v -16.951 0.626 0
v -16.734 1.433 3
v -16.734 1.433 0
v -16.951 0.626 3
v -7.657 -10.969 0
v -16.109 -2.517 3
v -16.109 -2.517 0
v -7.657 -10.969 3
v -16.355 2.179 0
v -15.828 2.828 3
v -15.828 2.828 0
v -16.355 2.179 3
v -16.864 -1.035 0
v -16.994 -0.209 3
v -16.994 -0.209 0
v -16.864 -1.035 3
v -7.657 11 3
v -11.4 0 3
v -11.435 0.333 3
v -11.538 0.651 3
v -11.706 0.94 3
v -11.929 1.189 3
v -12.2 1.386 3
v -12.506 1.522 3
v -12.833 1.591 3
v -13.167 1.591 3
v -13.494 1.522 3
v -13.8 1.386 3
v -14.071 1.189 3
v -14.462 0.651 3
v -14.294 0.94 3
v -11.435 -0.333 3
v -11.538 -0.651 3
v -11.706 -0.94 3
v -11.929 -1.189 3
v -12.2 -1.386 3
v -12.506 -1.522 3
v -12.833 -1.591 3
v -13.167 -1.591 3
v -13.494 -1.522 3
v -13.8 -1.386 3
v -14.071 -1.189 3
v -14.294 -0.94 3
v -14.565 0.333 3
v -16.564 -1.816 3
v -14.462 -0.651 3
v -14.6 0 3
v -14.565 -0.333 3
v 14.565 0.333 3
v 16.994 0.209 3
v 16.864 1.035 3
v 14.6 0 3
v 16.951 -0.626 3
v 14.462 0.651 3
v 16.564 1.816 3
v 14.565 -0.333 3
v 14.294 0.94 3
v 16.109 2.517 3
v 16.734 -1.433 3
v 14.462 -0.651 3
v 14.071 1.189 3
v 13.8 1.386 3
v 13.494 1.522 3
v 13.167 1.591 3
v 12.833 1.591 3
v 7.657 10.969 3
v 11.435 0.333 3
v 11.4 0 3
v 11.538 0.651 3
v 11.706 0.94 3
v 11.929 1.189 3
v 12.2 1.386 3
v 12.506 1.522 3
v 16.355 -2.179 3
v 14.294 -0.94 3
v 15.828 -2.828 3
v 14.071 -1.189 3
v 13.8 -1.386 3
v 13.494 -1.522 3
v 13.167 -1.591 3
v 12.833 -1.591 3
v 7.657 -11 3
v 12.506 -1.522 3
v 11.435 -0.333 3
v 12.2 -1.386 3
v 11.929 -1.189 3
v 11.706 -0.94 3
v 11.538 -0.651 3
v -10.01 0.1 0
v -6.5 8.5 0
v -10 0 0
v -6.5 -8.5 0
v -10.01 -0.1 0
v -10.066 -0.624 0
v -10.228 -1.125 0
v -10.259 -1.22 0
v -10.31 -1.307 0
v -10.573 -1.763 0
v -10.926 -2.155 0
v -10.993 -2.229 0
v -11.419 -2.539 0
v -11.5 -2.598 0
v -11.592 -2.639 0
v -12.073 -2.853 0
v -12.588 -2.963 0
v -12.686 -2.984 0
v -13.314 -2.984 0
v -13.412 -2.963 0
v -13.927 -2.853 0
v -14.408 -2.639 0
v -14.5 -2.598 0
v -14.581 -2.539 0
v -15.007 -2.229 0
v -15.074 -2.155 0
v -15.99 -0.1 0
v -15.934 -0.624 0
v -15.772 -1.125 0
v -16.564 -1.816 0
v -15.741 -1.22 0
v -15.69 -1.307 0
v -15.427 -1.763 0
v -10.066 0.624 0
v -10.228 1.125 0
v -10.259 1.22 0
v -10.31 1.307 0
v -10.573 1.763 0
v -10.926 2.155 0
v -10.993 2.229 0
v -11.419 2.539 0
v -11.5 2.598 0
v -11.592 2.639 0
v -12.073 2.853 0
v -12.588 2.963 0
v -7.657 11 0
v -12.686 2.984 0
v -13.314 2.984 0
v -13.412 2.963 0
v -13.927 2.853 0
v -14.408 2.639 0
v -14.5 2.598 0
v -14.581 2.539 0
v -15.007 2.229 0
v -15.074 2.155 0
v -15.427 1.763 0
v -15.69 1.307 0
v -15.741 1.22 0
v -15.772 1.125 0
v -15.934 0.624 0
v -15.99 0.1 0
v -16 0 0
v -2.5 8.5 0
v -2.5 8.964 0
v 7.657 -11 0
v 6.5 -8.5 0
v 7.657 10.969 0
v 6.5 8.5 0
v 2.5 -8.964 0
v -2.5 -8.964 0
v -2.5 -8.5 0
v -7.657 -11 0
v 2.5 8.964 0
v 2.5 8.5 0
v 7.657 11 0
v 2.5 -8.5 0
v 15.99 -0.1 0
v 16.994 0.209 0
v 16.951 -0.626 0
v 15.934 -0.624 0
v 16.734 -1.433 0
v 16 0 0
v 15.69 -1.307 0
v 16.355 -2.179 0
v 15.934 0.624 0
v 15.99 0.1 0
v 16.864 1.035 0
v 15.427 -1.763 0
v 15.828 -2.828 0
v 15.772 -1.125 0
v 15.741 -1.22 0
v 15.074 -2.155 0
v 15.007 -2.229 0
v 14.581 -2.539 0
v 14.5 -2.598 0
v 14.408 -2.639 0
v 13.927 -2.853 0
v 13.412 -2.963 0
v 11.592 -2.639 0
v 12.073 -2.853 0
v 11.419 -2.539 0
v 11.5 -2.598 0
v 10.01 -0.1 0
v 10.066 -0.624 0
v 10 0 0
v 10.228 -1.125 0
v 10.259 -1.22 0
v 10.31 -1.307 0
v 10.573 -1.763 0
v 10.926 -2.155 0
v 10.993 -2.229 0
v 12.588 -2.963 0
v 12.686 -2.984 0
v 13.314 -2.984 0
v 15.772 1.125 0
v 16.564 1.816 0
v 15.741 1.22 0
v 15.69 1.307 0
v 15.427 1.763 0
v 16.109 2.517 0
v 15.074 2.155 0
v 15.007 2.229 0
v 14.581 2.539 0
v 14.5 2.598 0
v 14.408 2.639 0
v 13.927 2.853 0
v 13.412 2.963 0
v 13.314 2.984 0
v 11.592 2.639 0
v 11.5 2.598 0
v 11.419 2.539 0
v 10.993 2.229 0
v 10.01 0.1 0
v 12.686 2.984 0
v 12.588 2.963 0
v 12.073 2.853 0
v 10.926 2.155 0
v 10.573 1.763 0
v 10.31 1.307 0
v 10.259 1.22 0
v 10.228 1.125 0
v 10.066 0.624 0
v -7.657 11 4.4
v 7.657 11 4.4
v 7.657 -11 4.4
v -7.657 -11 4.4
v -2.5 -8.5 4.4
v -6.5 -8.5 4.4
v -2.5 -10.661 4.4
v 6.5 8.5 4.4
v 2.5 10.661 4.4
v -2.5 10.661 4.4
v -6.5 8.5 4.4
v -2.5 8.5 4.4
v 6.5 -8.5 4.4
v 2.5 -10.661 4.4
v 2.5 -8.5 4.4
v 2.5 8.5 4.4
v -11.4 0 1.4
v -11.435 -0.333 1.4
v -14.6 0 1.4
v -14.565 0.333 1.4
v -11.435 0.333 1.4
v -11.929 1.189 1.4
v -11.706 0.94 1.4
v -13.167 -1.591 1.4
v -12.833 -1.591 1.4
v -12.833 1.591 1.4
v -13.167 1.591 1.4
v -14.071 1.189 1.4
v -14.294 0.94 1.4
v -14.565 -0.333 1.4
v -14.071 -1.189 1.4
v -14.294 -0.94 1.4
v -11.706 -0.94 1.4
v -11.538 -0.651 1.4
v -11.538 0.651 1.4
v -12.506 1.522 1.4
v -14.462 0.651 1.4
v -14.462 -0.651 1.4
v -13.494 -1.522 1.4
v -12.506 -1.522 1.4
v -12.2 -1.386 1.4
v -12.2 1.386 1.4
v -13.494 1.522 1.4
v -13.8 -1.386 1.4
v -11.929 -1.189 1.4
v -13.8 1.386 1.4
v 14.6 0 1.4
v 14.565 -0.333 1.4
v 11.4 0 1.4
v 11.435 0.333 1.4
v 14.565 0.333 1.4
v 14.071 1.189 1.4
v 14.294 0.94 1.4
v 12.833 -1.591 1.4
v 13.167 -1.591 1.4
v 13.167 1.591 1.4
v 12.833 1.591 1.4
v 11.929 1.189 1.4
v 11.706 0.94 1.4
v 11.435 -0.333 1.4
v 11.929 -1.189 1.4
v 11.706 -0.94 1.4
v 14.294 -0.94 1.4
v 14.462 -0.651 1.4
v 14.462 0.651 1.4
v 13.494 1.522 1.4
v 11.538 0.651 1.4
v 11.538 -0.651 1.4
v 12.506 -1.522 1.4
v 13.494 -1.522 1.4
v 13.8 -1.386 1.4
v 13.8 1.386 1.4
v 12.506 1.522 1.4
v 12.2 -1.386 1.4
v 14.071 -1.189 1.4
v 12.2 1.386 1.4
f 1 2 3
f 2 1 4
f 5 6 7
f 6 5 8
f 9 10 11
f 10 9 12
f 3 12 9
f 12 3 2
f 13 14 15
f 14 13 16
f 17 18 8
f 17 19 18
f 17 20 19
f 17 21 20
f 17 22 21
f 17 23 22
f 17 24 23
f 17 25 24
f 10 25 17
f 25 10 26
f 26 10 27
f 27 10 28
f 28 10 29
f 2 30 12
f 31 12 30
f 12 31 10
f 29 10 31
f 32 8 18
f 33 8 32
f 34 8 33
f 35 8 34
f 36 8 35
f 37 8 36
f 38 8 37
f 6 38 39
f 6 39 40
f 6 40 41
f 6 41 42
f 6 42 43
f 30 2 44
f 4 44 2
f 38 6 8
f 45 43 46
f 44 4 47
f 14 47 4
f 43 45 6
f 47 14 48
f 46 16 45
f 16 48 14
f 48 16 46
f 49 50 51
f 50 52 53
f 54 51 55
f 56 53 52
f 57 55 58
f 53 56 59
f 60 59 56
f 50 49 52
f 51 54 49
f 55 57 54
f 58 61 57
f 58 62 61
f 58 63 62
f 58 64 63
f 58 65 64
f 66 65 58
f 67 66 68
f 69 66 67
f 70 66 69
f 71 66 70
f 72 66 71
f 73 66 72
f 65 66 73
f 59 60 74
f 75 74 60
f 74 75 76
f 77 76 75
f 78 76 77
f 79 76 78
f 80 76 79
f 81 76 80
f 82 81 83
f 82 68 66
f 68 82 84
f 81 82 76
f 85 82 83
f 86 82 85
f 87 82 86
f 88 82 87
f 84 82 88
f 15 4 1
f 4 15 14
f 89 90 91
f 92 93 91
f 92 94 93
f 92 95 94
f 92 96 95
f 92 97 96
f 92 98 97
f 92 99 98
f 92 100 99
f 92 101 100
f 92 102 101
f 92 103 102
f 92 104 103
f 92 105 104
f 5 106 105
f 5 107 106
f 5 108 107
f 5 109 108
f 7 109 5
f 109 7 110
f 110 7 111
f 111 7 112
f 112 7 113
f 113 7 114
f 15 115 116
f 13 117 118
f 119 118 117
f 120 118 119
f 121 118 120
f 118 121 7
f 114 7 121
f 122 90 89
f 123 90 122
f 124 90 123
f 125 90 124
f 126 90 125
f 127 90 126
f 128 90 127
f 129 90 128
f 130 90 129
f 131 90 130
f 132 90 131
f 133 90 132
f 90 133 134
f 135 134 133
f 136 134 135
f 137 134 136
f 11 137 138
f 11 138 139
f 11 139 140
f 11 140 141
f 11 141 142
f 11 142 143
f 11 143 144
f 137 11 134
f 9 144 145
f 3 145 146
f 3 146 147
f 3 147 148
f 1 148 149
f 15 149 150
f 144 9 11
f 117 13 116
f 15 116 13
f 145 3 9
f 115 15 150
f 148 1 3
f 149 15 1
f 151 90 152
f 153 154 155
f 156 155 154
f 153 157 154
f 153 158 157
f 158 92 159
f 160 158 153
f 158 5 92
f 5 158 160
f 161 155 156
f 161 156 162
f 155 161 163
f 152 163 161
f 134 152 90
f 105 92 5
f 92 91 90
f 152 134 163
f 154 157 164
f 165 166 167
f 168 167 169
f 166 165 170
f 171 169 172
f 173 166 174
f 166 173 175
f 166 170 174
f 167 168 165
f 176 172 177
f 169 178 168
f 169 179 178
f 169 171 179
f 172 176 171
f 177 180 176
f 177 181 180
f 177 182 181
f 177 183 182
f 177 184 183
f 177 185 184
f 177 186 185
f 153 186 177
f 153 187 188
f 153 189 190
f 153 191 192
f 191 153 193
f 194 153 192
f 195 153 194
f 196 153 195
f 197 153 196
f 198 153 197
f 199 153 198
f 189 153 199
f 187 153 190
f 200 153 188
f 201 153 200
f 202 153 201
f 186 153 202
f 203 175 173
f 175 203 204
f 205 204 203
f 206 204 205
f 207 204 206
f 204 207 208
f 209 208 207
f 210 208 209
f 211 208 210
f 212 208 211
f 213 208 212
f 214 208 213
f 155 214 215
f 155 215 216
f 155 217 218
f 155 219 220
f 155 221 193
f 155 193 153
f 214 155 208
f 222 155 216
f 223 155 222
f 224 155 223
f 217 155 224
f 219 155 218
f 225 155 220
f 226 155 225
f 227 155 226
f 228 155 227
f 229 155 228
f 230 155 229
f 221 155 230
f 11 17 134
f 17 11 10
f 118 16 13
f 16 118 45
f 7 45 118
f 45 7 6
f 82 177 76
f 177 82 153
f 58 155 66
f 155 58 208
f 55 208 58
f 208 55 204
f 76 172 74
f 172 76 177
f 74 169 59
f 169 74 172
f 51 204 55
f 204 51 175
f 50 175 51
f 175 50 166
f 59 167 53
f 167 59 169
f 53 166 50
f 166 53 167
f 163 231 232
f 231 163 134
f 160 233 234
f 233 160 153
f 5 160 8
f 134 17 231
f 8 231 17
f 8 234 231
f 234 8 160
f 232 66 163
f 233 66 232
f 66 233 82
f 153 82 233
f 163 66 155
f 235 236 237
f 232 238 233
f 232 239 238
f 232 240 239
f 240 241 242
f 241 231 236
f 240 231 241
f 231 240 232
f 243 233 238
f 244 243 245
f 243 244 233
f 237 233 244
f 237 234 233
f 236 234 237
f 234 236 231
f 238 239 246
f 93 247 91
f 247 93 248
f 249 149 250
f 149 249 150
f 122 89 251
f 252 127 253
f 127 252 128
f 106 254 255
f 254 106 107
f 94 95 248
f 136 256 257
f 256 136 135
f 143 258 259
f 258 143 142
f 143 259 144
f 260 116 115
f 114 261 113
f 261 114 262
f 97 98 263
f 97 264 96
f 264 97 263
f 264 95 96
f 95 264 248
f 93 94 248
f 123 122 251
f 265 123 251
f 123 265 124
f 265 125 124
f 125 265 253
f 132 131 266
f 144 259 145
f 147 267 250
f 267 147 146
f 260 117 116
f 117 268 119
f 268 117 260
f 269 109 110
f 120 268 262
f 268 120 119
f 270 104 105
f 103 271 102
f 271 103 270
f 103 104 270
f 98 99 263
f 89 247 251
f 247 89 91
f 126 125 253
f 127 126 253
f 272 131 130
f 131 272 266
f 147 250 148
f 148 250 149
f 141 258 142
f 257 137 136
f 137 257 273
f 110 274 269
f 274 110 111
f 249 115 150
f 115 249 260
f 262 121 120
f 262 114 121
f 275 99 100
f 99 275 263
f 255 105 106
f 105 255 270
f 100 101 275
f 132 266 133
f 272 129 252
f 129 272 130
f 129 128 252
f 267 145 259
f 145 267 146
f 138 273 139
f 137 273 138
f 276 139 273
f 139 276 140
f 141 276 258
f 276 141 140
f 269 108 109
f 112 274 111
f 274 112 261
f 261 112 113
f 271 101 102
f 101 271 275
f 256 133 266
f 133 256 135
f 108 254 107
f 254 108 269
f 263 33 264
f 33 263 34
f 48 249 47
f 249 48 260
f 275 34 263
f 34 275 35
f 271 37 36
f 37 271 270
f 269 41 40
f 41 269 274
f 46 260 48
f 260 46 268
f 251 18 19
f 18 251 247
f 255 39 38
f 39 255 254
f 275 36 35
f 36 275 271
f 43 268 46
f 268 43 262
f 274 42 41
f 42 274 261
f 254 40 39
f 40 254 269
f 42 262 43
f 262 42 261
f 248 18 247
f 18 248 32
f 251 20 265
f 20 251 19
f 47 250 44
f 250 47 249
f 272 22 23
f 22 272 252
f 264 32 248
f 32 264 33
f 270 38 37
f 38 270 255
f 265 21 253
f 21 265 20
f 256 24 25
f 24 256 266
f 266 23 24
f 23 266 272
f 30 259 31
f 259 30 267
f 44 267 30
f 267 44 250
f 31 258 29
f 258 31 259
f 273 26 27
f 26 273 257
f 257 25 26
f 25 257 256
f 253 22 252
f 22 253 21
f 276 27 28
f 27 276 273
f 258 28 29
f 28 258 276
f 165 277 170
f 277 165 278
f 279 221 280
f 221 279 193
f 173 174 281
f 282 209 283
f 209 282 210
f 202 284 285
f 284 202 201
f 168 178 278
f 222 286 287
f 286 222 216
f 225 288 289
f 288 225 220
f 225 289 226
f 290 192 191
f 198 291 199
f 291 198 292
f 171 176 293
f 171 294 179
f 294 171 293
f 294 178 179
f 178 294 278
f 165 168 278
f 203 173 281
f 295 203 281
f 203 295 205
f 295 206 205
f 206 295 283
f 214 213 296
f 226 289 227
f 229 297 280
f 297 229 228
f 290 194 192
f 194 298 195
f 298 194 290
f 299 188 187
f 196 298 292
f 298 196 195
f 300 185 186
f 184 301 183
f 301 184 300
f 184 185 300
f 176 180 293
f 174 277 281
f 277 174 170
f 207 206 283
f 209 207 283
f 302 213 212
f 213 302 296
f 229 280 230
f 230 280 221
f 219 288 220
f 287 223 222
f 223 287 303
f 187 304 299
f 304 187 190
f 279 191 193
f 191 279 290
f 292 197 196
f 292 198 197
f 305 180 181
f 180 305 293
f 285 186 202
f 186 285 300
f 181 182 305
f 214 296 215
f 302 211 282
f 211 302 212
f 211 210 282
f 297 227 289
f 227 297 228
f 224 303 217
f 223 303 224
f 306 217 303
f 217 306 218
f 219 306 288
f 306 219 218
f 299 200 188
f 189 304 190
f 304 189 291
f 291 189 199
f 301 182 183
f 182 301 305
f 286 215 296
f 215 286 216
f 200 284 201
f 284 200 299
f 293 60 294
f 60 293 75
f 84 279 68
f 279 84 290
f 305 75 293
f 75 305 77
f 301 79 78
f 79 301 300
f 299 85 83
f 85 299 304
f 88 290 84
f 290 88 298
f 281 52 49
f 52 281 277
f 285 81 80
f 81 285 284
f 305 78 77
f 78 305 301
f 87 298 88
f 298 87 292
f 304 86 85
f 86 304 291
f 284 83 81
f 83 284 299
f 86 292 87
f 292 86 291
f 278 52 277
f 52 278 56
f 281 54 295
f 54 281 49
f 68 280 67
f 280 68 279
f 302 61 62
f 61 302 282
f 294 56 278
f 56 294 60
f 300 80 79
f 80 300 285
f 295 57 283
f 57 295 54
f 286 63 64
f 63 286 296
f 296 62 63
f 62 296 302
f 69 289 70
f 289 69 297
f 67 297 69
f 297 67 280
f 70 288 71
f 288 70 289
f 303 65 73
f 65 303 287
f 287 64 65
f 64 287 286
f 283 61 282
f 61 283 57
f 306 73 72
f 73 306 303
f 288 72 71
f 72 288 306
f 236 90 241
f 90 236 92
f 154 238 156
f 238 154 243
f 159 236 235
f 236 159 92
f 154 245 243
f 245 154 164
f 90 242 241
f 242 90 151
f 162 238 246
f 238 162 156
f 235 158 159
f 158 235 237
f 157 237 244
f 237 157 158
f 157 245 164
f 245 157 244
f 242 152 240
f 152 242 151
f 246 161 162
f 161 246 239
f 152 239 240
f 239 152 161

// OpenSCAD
// file: lib/halfcube.scad
// библиотечная функция - прямоугольная призма
/*
 * a - вектор [x,y,z] - куб, в который вписана призма
 * orient - строка "x"/"y"/"z" - ориентация треугольной грани призмы
 * center - логическое true/false - позиционирование относительно центра или с угла
 *
 * Автор - Andrew Answer (Андрей Нуждов): http://answe.ru
 * Сделано для проекта SibRap: http://reprap.org/wiki/SibRap
 * GitHub: https://github.com/andrewanswer/sibrap
 */
module halfcube(a, orient, center) {
	translate(center==true?-a/2:0) {
		if (orient=="x")
			polyhedron (points = [[a[0],0,a[2]], [0,0,a[2]], [0,a[1],0], [0,0,0], [a[0],0,0], [a[0],a[1],0]], faces = [[1,3,2], [4,0,5], [3,1,4], [1,2,5], [1,0,4], [0,1,5],  [5,2,4], [4,2,3]]);
		if (orient=="y")
			polyhedron (points = [[0,a[1],a[2]], [0,0,a[2]], [0,a[1],0], [0,0,0], [a[0],0,0], [a[0],a[1],0]], faces = [[1,3,2], [1,2,0], [3,1,4], [0,2,5], [1,5,4], [1,0,5],  [5,2,4], [4,2,3]]);
		if (orient=="z")
			polyhedron (points = [[0,a[1],a[2]], [0,0,a[2]], [0,a[1],0], [0,0,0], [a[0],0,0], [a[0],0,a[2]]], faces = [[1,3,2], [1,2,0], [3,1,4], [0,2,5], [1,5,4], [1,0,5],  [5,2,4], [4,2,3]]);
	}
}

// test
/*
halfcube([10,20,30],"x",true);
halfcube([10,20,30],"y",true);
halfcube([10,20,30],"z",false);
*/
// file: config.scad
/**
 * Глобальный конфигурационный файл
 */
// качество цилиндров
$fn=30;

// избегание совпадения граней
DELTA=0.1;

// толщина рамы
FRAME=15;
// main file
include <config.scad>
use <lib/halfcube.scad>

// расстояние между отверстиями
dx1=26;
dx=dx1/sqrt(2);
// радиус закругления
r1=4;

// габаритная длина
x1=22;
// габаритная высота
h1=4.4;

// высота ушек
h2=3;

// радиус отверстия
r2=3.2/2;

module hole() {
    translate([0,0,h2-1.5+0.1]) cylinder(h=2,r1=r2,r2=r2+2);
    translate([0,0,-DELTA]) cylinder(h=h2+DELTA,r=r2);
}

module frame_part06() {
rotate([180,0,0])translate([0,0,-h2])
difference() {
    union() {
    intersection() {
        // ушки - квадрат с закруглениями
        rotate([0,0,45])translate([-dx/2,-dx/2,0])
        minkowski() {
            cylinder(r=r1,h=h2/2);
            cube([dx,dx,h2/2]);
        }
        // обрезка двух углов
        translate([-dx1/2-r1,-x1/2,0])cube([dx1+r1*2,x1,h2]);
    }
        // утолщение
        translate([0,0,3-h1/2])cube([r1*2*sqrt(2)+(dx1-x1),x1,h1],true);
    }
    // отверстия под винты
    translate([-dx1/2,0,0])hole();
    translate([dx1/2,0,0])hole();
    // отверстие насквозь
    translate([0,0,3-h1/2])cube([13,17,h1+DELTA*2],true);
    translate([-2.5,8,-1.5])halfcube([5,2.7,7],"x");
    mirror([0,1,0])translate([-2.5,8,-1.5])halfcube([5,2.7,7],"x");
}
}

frame_part06();
